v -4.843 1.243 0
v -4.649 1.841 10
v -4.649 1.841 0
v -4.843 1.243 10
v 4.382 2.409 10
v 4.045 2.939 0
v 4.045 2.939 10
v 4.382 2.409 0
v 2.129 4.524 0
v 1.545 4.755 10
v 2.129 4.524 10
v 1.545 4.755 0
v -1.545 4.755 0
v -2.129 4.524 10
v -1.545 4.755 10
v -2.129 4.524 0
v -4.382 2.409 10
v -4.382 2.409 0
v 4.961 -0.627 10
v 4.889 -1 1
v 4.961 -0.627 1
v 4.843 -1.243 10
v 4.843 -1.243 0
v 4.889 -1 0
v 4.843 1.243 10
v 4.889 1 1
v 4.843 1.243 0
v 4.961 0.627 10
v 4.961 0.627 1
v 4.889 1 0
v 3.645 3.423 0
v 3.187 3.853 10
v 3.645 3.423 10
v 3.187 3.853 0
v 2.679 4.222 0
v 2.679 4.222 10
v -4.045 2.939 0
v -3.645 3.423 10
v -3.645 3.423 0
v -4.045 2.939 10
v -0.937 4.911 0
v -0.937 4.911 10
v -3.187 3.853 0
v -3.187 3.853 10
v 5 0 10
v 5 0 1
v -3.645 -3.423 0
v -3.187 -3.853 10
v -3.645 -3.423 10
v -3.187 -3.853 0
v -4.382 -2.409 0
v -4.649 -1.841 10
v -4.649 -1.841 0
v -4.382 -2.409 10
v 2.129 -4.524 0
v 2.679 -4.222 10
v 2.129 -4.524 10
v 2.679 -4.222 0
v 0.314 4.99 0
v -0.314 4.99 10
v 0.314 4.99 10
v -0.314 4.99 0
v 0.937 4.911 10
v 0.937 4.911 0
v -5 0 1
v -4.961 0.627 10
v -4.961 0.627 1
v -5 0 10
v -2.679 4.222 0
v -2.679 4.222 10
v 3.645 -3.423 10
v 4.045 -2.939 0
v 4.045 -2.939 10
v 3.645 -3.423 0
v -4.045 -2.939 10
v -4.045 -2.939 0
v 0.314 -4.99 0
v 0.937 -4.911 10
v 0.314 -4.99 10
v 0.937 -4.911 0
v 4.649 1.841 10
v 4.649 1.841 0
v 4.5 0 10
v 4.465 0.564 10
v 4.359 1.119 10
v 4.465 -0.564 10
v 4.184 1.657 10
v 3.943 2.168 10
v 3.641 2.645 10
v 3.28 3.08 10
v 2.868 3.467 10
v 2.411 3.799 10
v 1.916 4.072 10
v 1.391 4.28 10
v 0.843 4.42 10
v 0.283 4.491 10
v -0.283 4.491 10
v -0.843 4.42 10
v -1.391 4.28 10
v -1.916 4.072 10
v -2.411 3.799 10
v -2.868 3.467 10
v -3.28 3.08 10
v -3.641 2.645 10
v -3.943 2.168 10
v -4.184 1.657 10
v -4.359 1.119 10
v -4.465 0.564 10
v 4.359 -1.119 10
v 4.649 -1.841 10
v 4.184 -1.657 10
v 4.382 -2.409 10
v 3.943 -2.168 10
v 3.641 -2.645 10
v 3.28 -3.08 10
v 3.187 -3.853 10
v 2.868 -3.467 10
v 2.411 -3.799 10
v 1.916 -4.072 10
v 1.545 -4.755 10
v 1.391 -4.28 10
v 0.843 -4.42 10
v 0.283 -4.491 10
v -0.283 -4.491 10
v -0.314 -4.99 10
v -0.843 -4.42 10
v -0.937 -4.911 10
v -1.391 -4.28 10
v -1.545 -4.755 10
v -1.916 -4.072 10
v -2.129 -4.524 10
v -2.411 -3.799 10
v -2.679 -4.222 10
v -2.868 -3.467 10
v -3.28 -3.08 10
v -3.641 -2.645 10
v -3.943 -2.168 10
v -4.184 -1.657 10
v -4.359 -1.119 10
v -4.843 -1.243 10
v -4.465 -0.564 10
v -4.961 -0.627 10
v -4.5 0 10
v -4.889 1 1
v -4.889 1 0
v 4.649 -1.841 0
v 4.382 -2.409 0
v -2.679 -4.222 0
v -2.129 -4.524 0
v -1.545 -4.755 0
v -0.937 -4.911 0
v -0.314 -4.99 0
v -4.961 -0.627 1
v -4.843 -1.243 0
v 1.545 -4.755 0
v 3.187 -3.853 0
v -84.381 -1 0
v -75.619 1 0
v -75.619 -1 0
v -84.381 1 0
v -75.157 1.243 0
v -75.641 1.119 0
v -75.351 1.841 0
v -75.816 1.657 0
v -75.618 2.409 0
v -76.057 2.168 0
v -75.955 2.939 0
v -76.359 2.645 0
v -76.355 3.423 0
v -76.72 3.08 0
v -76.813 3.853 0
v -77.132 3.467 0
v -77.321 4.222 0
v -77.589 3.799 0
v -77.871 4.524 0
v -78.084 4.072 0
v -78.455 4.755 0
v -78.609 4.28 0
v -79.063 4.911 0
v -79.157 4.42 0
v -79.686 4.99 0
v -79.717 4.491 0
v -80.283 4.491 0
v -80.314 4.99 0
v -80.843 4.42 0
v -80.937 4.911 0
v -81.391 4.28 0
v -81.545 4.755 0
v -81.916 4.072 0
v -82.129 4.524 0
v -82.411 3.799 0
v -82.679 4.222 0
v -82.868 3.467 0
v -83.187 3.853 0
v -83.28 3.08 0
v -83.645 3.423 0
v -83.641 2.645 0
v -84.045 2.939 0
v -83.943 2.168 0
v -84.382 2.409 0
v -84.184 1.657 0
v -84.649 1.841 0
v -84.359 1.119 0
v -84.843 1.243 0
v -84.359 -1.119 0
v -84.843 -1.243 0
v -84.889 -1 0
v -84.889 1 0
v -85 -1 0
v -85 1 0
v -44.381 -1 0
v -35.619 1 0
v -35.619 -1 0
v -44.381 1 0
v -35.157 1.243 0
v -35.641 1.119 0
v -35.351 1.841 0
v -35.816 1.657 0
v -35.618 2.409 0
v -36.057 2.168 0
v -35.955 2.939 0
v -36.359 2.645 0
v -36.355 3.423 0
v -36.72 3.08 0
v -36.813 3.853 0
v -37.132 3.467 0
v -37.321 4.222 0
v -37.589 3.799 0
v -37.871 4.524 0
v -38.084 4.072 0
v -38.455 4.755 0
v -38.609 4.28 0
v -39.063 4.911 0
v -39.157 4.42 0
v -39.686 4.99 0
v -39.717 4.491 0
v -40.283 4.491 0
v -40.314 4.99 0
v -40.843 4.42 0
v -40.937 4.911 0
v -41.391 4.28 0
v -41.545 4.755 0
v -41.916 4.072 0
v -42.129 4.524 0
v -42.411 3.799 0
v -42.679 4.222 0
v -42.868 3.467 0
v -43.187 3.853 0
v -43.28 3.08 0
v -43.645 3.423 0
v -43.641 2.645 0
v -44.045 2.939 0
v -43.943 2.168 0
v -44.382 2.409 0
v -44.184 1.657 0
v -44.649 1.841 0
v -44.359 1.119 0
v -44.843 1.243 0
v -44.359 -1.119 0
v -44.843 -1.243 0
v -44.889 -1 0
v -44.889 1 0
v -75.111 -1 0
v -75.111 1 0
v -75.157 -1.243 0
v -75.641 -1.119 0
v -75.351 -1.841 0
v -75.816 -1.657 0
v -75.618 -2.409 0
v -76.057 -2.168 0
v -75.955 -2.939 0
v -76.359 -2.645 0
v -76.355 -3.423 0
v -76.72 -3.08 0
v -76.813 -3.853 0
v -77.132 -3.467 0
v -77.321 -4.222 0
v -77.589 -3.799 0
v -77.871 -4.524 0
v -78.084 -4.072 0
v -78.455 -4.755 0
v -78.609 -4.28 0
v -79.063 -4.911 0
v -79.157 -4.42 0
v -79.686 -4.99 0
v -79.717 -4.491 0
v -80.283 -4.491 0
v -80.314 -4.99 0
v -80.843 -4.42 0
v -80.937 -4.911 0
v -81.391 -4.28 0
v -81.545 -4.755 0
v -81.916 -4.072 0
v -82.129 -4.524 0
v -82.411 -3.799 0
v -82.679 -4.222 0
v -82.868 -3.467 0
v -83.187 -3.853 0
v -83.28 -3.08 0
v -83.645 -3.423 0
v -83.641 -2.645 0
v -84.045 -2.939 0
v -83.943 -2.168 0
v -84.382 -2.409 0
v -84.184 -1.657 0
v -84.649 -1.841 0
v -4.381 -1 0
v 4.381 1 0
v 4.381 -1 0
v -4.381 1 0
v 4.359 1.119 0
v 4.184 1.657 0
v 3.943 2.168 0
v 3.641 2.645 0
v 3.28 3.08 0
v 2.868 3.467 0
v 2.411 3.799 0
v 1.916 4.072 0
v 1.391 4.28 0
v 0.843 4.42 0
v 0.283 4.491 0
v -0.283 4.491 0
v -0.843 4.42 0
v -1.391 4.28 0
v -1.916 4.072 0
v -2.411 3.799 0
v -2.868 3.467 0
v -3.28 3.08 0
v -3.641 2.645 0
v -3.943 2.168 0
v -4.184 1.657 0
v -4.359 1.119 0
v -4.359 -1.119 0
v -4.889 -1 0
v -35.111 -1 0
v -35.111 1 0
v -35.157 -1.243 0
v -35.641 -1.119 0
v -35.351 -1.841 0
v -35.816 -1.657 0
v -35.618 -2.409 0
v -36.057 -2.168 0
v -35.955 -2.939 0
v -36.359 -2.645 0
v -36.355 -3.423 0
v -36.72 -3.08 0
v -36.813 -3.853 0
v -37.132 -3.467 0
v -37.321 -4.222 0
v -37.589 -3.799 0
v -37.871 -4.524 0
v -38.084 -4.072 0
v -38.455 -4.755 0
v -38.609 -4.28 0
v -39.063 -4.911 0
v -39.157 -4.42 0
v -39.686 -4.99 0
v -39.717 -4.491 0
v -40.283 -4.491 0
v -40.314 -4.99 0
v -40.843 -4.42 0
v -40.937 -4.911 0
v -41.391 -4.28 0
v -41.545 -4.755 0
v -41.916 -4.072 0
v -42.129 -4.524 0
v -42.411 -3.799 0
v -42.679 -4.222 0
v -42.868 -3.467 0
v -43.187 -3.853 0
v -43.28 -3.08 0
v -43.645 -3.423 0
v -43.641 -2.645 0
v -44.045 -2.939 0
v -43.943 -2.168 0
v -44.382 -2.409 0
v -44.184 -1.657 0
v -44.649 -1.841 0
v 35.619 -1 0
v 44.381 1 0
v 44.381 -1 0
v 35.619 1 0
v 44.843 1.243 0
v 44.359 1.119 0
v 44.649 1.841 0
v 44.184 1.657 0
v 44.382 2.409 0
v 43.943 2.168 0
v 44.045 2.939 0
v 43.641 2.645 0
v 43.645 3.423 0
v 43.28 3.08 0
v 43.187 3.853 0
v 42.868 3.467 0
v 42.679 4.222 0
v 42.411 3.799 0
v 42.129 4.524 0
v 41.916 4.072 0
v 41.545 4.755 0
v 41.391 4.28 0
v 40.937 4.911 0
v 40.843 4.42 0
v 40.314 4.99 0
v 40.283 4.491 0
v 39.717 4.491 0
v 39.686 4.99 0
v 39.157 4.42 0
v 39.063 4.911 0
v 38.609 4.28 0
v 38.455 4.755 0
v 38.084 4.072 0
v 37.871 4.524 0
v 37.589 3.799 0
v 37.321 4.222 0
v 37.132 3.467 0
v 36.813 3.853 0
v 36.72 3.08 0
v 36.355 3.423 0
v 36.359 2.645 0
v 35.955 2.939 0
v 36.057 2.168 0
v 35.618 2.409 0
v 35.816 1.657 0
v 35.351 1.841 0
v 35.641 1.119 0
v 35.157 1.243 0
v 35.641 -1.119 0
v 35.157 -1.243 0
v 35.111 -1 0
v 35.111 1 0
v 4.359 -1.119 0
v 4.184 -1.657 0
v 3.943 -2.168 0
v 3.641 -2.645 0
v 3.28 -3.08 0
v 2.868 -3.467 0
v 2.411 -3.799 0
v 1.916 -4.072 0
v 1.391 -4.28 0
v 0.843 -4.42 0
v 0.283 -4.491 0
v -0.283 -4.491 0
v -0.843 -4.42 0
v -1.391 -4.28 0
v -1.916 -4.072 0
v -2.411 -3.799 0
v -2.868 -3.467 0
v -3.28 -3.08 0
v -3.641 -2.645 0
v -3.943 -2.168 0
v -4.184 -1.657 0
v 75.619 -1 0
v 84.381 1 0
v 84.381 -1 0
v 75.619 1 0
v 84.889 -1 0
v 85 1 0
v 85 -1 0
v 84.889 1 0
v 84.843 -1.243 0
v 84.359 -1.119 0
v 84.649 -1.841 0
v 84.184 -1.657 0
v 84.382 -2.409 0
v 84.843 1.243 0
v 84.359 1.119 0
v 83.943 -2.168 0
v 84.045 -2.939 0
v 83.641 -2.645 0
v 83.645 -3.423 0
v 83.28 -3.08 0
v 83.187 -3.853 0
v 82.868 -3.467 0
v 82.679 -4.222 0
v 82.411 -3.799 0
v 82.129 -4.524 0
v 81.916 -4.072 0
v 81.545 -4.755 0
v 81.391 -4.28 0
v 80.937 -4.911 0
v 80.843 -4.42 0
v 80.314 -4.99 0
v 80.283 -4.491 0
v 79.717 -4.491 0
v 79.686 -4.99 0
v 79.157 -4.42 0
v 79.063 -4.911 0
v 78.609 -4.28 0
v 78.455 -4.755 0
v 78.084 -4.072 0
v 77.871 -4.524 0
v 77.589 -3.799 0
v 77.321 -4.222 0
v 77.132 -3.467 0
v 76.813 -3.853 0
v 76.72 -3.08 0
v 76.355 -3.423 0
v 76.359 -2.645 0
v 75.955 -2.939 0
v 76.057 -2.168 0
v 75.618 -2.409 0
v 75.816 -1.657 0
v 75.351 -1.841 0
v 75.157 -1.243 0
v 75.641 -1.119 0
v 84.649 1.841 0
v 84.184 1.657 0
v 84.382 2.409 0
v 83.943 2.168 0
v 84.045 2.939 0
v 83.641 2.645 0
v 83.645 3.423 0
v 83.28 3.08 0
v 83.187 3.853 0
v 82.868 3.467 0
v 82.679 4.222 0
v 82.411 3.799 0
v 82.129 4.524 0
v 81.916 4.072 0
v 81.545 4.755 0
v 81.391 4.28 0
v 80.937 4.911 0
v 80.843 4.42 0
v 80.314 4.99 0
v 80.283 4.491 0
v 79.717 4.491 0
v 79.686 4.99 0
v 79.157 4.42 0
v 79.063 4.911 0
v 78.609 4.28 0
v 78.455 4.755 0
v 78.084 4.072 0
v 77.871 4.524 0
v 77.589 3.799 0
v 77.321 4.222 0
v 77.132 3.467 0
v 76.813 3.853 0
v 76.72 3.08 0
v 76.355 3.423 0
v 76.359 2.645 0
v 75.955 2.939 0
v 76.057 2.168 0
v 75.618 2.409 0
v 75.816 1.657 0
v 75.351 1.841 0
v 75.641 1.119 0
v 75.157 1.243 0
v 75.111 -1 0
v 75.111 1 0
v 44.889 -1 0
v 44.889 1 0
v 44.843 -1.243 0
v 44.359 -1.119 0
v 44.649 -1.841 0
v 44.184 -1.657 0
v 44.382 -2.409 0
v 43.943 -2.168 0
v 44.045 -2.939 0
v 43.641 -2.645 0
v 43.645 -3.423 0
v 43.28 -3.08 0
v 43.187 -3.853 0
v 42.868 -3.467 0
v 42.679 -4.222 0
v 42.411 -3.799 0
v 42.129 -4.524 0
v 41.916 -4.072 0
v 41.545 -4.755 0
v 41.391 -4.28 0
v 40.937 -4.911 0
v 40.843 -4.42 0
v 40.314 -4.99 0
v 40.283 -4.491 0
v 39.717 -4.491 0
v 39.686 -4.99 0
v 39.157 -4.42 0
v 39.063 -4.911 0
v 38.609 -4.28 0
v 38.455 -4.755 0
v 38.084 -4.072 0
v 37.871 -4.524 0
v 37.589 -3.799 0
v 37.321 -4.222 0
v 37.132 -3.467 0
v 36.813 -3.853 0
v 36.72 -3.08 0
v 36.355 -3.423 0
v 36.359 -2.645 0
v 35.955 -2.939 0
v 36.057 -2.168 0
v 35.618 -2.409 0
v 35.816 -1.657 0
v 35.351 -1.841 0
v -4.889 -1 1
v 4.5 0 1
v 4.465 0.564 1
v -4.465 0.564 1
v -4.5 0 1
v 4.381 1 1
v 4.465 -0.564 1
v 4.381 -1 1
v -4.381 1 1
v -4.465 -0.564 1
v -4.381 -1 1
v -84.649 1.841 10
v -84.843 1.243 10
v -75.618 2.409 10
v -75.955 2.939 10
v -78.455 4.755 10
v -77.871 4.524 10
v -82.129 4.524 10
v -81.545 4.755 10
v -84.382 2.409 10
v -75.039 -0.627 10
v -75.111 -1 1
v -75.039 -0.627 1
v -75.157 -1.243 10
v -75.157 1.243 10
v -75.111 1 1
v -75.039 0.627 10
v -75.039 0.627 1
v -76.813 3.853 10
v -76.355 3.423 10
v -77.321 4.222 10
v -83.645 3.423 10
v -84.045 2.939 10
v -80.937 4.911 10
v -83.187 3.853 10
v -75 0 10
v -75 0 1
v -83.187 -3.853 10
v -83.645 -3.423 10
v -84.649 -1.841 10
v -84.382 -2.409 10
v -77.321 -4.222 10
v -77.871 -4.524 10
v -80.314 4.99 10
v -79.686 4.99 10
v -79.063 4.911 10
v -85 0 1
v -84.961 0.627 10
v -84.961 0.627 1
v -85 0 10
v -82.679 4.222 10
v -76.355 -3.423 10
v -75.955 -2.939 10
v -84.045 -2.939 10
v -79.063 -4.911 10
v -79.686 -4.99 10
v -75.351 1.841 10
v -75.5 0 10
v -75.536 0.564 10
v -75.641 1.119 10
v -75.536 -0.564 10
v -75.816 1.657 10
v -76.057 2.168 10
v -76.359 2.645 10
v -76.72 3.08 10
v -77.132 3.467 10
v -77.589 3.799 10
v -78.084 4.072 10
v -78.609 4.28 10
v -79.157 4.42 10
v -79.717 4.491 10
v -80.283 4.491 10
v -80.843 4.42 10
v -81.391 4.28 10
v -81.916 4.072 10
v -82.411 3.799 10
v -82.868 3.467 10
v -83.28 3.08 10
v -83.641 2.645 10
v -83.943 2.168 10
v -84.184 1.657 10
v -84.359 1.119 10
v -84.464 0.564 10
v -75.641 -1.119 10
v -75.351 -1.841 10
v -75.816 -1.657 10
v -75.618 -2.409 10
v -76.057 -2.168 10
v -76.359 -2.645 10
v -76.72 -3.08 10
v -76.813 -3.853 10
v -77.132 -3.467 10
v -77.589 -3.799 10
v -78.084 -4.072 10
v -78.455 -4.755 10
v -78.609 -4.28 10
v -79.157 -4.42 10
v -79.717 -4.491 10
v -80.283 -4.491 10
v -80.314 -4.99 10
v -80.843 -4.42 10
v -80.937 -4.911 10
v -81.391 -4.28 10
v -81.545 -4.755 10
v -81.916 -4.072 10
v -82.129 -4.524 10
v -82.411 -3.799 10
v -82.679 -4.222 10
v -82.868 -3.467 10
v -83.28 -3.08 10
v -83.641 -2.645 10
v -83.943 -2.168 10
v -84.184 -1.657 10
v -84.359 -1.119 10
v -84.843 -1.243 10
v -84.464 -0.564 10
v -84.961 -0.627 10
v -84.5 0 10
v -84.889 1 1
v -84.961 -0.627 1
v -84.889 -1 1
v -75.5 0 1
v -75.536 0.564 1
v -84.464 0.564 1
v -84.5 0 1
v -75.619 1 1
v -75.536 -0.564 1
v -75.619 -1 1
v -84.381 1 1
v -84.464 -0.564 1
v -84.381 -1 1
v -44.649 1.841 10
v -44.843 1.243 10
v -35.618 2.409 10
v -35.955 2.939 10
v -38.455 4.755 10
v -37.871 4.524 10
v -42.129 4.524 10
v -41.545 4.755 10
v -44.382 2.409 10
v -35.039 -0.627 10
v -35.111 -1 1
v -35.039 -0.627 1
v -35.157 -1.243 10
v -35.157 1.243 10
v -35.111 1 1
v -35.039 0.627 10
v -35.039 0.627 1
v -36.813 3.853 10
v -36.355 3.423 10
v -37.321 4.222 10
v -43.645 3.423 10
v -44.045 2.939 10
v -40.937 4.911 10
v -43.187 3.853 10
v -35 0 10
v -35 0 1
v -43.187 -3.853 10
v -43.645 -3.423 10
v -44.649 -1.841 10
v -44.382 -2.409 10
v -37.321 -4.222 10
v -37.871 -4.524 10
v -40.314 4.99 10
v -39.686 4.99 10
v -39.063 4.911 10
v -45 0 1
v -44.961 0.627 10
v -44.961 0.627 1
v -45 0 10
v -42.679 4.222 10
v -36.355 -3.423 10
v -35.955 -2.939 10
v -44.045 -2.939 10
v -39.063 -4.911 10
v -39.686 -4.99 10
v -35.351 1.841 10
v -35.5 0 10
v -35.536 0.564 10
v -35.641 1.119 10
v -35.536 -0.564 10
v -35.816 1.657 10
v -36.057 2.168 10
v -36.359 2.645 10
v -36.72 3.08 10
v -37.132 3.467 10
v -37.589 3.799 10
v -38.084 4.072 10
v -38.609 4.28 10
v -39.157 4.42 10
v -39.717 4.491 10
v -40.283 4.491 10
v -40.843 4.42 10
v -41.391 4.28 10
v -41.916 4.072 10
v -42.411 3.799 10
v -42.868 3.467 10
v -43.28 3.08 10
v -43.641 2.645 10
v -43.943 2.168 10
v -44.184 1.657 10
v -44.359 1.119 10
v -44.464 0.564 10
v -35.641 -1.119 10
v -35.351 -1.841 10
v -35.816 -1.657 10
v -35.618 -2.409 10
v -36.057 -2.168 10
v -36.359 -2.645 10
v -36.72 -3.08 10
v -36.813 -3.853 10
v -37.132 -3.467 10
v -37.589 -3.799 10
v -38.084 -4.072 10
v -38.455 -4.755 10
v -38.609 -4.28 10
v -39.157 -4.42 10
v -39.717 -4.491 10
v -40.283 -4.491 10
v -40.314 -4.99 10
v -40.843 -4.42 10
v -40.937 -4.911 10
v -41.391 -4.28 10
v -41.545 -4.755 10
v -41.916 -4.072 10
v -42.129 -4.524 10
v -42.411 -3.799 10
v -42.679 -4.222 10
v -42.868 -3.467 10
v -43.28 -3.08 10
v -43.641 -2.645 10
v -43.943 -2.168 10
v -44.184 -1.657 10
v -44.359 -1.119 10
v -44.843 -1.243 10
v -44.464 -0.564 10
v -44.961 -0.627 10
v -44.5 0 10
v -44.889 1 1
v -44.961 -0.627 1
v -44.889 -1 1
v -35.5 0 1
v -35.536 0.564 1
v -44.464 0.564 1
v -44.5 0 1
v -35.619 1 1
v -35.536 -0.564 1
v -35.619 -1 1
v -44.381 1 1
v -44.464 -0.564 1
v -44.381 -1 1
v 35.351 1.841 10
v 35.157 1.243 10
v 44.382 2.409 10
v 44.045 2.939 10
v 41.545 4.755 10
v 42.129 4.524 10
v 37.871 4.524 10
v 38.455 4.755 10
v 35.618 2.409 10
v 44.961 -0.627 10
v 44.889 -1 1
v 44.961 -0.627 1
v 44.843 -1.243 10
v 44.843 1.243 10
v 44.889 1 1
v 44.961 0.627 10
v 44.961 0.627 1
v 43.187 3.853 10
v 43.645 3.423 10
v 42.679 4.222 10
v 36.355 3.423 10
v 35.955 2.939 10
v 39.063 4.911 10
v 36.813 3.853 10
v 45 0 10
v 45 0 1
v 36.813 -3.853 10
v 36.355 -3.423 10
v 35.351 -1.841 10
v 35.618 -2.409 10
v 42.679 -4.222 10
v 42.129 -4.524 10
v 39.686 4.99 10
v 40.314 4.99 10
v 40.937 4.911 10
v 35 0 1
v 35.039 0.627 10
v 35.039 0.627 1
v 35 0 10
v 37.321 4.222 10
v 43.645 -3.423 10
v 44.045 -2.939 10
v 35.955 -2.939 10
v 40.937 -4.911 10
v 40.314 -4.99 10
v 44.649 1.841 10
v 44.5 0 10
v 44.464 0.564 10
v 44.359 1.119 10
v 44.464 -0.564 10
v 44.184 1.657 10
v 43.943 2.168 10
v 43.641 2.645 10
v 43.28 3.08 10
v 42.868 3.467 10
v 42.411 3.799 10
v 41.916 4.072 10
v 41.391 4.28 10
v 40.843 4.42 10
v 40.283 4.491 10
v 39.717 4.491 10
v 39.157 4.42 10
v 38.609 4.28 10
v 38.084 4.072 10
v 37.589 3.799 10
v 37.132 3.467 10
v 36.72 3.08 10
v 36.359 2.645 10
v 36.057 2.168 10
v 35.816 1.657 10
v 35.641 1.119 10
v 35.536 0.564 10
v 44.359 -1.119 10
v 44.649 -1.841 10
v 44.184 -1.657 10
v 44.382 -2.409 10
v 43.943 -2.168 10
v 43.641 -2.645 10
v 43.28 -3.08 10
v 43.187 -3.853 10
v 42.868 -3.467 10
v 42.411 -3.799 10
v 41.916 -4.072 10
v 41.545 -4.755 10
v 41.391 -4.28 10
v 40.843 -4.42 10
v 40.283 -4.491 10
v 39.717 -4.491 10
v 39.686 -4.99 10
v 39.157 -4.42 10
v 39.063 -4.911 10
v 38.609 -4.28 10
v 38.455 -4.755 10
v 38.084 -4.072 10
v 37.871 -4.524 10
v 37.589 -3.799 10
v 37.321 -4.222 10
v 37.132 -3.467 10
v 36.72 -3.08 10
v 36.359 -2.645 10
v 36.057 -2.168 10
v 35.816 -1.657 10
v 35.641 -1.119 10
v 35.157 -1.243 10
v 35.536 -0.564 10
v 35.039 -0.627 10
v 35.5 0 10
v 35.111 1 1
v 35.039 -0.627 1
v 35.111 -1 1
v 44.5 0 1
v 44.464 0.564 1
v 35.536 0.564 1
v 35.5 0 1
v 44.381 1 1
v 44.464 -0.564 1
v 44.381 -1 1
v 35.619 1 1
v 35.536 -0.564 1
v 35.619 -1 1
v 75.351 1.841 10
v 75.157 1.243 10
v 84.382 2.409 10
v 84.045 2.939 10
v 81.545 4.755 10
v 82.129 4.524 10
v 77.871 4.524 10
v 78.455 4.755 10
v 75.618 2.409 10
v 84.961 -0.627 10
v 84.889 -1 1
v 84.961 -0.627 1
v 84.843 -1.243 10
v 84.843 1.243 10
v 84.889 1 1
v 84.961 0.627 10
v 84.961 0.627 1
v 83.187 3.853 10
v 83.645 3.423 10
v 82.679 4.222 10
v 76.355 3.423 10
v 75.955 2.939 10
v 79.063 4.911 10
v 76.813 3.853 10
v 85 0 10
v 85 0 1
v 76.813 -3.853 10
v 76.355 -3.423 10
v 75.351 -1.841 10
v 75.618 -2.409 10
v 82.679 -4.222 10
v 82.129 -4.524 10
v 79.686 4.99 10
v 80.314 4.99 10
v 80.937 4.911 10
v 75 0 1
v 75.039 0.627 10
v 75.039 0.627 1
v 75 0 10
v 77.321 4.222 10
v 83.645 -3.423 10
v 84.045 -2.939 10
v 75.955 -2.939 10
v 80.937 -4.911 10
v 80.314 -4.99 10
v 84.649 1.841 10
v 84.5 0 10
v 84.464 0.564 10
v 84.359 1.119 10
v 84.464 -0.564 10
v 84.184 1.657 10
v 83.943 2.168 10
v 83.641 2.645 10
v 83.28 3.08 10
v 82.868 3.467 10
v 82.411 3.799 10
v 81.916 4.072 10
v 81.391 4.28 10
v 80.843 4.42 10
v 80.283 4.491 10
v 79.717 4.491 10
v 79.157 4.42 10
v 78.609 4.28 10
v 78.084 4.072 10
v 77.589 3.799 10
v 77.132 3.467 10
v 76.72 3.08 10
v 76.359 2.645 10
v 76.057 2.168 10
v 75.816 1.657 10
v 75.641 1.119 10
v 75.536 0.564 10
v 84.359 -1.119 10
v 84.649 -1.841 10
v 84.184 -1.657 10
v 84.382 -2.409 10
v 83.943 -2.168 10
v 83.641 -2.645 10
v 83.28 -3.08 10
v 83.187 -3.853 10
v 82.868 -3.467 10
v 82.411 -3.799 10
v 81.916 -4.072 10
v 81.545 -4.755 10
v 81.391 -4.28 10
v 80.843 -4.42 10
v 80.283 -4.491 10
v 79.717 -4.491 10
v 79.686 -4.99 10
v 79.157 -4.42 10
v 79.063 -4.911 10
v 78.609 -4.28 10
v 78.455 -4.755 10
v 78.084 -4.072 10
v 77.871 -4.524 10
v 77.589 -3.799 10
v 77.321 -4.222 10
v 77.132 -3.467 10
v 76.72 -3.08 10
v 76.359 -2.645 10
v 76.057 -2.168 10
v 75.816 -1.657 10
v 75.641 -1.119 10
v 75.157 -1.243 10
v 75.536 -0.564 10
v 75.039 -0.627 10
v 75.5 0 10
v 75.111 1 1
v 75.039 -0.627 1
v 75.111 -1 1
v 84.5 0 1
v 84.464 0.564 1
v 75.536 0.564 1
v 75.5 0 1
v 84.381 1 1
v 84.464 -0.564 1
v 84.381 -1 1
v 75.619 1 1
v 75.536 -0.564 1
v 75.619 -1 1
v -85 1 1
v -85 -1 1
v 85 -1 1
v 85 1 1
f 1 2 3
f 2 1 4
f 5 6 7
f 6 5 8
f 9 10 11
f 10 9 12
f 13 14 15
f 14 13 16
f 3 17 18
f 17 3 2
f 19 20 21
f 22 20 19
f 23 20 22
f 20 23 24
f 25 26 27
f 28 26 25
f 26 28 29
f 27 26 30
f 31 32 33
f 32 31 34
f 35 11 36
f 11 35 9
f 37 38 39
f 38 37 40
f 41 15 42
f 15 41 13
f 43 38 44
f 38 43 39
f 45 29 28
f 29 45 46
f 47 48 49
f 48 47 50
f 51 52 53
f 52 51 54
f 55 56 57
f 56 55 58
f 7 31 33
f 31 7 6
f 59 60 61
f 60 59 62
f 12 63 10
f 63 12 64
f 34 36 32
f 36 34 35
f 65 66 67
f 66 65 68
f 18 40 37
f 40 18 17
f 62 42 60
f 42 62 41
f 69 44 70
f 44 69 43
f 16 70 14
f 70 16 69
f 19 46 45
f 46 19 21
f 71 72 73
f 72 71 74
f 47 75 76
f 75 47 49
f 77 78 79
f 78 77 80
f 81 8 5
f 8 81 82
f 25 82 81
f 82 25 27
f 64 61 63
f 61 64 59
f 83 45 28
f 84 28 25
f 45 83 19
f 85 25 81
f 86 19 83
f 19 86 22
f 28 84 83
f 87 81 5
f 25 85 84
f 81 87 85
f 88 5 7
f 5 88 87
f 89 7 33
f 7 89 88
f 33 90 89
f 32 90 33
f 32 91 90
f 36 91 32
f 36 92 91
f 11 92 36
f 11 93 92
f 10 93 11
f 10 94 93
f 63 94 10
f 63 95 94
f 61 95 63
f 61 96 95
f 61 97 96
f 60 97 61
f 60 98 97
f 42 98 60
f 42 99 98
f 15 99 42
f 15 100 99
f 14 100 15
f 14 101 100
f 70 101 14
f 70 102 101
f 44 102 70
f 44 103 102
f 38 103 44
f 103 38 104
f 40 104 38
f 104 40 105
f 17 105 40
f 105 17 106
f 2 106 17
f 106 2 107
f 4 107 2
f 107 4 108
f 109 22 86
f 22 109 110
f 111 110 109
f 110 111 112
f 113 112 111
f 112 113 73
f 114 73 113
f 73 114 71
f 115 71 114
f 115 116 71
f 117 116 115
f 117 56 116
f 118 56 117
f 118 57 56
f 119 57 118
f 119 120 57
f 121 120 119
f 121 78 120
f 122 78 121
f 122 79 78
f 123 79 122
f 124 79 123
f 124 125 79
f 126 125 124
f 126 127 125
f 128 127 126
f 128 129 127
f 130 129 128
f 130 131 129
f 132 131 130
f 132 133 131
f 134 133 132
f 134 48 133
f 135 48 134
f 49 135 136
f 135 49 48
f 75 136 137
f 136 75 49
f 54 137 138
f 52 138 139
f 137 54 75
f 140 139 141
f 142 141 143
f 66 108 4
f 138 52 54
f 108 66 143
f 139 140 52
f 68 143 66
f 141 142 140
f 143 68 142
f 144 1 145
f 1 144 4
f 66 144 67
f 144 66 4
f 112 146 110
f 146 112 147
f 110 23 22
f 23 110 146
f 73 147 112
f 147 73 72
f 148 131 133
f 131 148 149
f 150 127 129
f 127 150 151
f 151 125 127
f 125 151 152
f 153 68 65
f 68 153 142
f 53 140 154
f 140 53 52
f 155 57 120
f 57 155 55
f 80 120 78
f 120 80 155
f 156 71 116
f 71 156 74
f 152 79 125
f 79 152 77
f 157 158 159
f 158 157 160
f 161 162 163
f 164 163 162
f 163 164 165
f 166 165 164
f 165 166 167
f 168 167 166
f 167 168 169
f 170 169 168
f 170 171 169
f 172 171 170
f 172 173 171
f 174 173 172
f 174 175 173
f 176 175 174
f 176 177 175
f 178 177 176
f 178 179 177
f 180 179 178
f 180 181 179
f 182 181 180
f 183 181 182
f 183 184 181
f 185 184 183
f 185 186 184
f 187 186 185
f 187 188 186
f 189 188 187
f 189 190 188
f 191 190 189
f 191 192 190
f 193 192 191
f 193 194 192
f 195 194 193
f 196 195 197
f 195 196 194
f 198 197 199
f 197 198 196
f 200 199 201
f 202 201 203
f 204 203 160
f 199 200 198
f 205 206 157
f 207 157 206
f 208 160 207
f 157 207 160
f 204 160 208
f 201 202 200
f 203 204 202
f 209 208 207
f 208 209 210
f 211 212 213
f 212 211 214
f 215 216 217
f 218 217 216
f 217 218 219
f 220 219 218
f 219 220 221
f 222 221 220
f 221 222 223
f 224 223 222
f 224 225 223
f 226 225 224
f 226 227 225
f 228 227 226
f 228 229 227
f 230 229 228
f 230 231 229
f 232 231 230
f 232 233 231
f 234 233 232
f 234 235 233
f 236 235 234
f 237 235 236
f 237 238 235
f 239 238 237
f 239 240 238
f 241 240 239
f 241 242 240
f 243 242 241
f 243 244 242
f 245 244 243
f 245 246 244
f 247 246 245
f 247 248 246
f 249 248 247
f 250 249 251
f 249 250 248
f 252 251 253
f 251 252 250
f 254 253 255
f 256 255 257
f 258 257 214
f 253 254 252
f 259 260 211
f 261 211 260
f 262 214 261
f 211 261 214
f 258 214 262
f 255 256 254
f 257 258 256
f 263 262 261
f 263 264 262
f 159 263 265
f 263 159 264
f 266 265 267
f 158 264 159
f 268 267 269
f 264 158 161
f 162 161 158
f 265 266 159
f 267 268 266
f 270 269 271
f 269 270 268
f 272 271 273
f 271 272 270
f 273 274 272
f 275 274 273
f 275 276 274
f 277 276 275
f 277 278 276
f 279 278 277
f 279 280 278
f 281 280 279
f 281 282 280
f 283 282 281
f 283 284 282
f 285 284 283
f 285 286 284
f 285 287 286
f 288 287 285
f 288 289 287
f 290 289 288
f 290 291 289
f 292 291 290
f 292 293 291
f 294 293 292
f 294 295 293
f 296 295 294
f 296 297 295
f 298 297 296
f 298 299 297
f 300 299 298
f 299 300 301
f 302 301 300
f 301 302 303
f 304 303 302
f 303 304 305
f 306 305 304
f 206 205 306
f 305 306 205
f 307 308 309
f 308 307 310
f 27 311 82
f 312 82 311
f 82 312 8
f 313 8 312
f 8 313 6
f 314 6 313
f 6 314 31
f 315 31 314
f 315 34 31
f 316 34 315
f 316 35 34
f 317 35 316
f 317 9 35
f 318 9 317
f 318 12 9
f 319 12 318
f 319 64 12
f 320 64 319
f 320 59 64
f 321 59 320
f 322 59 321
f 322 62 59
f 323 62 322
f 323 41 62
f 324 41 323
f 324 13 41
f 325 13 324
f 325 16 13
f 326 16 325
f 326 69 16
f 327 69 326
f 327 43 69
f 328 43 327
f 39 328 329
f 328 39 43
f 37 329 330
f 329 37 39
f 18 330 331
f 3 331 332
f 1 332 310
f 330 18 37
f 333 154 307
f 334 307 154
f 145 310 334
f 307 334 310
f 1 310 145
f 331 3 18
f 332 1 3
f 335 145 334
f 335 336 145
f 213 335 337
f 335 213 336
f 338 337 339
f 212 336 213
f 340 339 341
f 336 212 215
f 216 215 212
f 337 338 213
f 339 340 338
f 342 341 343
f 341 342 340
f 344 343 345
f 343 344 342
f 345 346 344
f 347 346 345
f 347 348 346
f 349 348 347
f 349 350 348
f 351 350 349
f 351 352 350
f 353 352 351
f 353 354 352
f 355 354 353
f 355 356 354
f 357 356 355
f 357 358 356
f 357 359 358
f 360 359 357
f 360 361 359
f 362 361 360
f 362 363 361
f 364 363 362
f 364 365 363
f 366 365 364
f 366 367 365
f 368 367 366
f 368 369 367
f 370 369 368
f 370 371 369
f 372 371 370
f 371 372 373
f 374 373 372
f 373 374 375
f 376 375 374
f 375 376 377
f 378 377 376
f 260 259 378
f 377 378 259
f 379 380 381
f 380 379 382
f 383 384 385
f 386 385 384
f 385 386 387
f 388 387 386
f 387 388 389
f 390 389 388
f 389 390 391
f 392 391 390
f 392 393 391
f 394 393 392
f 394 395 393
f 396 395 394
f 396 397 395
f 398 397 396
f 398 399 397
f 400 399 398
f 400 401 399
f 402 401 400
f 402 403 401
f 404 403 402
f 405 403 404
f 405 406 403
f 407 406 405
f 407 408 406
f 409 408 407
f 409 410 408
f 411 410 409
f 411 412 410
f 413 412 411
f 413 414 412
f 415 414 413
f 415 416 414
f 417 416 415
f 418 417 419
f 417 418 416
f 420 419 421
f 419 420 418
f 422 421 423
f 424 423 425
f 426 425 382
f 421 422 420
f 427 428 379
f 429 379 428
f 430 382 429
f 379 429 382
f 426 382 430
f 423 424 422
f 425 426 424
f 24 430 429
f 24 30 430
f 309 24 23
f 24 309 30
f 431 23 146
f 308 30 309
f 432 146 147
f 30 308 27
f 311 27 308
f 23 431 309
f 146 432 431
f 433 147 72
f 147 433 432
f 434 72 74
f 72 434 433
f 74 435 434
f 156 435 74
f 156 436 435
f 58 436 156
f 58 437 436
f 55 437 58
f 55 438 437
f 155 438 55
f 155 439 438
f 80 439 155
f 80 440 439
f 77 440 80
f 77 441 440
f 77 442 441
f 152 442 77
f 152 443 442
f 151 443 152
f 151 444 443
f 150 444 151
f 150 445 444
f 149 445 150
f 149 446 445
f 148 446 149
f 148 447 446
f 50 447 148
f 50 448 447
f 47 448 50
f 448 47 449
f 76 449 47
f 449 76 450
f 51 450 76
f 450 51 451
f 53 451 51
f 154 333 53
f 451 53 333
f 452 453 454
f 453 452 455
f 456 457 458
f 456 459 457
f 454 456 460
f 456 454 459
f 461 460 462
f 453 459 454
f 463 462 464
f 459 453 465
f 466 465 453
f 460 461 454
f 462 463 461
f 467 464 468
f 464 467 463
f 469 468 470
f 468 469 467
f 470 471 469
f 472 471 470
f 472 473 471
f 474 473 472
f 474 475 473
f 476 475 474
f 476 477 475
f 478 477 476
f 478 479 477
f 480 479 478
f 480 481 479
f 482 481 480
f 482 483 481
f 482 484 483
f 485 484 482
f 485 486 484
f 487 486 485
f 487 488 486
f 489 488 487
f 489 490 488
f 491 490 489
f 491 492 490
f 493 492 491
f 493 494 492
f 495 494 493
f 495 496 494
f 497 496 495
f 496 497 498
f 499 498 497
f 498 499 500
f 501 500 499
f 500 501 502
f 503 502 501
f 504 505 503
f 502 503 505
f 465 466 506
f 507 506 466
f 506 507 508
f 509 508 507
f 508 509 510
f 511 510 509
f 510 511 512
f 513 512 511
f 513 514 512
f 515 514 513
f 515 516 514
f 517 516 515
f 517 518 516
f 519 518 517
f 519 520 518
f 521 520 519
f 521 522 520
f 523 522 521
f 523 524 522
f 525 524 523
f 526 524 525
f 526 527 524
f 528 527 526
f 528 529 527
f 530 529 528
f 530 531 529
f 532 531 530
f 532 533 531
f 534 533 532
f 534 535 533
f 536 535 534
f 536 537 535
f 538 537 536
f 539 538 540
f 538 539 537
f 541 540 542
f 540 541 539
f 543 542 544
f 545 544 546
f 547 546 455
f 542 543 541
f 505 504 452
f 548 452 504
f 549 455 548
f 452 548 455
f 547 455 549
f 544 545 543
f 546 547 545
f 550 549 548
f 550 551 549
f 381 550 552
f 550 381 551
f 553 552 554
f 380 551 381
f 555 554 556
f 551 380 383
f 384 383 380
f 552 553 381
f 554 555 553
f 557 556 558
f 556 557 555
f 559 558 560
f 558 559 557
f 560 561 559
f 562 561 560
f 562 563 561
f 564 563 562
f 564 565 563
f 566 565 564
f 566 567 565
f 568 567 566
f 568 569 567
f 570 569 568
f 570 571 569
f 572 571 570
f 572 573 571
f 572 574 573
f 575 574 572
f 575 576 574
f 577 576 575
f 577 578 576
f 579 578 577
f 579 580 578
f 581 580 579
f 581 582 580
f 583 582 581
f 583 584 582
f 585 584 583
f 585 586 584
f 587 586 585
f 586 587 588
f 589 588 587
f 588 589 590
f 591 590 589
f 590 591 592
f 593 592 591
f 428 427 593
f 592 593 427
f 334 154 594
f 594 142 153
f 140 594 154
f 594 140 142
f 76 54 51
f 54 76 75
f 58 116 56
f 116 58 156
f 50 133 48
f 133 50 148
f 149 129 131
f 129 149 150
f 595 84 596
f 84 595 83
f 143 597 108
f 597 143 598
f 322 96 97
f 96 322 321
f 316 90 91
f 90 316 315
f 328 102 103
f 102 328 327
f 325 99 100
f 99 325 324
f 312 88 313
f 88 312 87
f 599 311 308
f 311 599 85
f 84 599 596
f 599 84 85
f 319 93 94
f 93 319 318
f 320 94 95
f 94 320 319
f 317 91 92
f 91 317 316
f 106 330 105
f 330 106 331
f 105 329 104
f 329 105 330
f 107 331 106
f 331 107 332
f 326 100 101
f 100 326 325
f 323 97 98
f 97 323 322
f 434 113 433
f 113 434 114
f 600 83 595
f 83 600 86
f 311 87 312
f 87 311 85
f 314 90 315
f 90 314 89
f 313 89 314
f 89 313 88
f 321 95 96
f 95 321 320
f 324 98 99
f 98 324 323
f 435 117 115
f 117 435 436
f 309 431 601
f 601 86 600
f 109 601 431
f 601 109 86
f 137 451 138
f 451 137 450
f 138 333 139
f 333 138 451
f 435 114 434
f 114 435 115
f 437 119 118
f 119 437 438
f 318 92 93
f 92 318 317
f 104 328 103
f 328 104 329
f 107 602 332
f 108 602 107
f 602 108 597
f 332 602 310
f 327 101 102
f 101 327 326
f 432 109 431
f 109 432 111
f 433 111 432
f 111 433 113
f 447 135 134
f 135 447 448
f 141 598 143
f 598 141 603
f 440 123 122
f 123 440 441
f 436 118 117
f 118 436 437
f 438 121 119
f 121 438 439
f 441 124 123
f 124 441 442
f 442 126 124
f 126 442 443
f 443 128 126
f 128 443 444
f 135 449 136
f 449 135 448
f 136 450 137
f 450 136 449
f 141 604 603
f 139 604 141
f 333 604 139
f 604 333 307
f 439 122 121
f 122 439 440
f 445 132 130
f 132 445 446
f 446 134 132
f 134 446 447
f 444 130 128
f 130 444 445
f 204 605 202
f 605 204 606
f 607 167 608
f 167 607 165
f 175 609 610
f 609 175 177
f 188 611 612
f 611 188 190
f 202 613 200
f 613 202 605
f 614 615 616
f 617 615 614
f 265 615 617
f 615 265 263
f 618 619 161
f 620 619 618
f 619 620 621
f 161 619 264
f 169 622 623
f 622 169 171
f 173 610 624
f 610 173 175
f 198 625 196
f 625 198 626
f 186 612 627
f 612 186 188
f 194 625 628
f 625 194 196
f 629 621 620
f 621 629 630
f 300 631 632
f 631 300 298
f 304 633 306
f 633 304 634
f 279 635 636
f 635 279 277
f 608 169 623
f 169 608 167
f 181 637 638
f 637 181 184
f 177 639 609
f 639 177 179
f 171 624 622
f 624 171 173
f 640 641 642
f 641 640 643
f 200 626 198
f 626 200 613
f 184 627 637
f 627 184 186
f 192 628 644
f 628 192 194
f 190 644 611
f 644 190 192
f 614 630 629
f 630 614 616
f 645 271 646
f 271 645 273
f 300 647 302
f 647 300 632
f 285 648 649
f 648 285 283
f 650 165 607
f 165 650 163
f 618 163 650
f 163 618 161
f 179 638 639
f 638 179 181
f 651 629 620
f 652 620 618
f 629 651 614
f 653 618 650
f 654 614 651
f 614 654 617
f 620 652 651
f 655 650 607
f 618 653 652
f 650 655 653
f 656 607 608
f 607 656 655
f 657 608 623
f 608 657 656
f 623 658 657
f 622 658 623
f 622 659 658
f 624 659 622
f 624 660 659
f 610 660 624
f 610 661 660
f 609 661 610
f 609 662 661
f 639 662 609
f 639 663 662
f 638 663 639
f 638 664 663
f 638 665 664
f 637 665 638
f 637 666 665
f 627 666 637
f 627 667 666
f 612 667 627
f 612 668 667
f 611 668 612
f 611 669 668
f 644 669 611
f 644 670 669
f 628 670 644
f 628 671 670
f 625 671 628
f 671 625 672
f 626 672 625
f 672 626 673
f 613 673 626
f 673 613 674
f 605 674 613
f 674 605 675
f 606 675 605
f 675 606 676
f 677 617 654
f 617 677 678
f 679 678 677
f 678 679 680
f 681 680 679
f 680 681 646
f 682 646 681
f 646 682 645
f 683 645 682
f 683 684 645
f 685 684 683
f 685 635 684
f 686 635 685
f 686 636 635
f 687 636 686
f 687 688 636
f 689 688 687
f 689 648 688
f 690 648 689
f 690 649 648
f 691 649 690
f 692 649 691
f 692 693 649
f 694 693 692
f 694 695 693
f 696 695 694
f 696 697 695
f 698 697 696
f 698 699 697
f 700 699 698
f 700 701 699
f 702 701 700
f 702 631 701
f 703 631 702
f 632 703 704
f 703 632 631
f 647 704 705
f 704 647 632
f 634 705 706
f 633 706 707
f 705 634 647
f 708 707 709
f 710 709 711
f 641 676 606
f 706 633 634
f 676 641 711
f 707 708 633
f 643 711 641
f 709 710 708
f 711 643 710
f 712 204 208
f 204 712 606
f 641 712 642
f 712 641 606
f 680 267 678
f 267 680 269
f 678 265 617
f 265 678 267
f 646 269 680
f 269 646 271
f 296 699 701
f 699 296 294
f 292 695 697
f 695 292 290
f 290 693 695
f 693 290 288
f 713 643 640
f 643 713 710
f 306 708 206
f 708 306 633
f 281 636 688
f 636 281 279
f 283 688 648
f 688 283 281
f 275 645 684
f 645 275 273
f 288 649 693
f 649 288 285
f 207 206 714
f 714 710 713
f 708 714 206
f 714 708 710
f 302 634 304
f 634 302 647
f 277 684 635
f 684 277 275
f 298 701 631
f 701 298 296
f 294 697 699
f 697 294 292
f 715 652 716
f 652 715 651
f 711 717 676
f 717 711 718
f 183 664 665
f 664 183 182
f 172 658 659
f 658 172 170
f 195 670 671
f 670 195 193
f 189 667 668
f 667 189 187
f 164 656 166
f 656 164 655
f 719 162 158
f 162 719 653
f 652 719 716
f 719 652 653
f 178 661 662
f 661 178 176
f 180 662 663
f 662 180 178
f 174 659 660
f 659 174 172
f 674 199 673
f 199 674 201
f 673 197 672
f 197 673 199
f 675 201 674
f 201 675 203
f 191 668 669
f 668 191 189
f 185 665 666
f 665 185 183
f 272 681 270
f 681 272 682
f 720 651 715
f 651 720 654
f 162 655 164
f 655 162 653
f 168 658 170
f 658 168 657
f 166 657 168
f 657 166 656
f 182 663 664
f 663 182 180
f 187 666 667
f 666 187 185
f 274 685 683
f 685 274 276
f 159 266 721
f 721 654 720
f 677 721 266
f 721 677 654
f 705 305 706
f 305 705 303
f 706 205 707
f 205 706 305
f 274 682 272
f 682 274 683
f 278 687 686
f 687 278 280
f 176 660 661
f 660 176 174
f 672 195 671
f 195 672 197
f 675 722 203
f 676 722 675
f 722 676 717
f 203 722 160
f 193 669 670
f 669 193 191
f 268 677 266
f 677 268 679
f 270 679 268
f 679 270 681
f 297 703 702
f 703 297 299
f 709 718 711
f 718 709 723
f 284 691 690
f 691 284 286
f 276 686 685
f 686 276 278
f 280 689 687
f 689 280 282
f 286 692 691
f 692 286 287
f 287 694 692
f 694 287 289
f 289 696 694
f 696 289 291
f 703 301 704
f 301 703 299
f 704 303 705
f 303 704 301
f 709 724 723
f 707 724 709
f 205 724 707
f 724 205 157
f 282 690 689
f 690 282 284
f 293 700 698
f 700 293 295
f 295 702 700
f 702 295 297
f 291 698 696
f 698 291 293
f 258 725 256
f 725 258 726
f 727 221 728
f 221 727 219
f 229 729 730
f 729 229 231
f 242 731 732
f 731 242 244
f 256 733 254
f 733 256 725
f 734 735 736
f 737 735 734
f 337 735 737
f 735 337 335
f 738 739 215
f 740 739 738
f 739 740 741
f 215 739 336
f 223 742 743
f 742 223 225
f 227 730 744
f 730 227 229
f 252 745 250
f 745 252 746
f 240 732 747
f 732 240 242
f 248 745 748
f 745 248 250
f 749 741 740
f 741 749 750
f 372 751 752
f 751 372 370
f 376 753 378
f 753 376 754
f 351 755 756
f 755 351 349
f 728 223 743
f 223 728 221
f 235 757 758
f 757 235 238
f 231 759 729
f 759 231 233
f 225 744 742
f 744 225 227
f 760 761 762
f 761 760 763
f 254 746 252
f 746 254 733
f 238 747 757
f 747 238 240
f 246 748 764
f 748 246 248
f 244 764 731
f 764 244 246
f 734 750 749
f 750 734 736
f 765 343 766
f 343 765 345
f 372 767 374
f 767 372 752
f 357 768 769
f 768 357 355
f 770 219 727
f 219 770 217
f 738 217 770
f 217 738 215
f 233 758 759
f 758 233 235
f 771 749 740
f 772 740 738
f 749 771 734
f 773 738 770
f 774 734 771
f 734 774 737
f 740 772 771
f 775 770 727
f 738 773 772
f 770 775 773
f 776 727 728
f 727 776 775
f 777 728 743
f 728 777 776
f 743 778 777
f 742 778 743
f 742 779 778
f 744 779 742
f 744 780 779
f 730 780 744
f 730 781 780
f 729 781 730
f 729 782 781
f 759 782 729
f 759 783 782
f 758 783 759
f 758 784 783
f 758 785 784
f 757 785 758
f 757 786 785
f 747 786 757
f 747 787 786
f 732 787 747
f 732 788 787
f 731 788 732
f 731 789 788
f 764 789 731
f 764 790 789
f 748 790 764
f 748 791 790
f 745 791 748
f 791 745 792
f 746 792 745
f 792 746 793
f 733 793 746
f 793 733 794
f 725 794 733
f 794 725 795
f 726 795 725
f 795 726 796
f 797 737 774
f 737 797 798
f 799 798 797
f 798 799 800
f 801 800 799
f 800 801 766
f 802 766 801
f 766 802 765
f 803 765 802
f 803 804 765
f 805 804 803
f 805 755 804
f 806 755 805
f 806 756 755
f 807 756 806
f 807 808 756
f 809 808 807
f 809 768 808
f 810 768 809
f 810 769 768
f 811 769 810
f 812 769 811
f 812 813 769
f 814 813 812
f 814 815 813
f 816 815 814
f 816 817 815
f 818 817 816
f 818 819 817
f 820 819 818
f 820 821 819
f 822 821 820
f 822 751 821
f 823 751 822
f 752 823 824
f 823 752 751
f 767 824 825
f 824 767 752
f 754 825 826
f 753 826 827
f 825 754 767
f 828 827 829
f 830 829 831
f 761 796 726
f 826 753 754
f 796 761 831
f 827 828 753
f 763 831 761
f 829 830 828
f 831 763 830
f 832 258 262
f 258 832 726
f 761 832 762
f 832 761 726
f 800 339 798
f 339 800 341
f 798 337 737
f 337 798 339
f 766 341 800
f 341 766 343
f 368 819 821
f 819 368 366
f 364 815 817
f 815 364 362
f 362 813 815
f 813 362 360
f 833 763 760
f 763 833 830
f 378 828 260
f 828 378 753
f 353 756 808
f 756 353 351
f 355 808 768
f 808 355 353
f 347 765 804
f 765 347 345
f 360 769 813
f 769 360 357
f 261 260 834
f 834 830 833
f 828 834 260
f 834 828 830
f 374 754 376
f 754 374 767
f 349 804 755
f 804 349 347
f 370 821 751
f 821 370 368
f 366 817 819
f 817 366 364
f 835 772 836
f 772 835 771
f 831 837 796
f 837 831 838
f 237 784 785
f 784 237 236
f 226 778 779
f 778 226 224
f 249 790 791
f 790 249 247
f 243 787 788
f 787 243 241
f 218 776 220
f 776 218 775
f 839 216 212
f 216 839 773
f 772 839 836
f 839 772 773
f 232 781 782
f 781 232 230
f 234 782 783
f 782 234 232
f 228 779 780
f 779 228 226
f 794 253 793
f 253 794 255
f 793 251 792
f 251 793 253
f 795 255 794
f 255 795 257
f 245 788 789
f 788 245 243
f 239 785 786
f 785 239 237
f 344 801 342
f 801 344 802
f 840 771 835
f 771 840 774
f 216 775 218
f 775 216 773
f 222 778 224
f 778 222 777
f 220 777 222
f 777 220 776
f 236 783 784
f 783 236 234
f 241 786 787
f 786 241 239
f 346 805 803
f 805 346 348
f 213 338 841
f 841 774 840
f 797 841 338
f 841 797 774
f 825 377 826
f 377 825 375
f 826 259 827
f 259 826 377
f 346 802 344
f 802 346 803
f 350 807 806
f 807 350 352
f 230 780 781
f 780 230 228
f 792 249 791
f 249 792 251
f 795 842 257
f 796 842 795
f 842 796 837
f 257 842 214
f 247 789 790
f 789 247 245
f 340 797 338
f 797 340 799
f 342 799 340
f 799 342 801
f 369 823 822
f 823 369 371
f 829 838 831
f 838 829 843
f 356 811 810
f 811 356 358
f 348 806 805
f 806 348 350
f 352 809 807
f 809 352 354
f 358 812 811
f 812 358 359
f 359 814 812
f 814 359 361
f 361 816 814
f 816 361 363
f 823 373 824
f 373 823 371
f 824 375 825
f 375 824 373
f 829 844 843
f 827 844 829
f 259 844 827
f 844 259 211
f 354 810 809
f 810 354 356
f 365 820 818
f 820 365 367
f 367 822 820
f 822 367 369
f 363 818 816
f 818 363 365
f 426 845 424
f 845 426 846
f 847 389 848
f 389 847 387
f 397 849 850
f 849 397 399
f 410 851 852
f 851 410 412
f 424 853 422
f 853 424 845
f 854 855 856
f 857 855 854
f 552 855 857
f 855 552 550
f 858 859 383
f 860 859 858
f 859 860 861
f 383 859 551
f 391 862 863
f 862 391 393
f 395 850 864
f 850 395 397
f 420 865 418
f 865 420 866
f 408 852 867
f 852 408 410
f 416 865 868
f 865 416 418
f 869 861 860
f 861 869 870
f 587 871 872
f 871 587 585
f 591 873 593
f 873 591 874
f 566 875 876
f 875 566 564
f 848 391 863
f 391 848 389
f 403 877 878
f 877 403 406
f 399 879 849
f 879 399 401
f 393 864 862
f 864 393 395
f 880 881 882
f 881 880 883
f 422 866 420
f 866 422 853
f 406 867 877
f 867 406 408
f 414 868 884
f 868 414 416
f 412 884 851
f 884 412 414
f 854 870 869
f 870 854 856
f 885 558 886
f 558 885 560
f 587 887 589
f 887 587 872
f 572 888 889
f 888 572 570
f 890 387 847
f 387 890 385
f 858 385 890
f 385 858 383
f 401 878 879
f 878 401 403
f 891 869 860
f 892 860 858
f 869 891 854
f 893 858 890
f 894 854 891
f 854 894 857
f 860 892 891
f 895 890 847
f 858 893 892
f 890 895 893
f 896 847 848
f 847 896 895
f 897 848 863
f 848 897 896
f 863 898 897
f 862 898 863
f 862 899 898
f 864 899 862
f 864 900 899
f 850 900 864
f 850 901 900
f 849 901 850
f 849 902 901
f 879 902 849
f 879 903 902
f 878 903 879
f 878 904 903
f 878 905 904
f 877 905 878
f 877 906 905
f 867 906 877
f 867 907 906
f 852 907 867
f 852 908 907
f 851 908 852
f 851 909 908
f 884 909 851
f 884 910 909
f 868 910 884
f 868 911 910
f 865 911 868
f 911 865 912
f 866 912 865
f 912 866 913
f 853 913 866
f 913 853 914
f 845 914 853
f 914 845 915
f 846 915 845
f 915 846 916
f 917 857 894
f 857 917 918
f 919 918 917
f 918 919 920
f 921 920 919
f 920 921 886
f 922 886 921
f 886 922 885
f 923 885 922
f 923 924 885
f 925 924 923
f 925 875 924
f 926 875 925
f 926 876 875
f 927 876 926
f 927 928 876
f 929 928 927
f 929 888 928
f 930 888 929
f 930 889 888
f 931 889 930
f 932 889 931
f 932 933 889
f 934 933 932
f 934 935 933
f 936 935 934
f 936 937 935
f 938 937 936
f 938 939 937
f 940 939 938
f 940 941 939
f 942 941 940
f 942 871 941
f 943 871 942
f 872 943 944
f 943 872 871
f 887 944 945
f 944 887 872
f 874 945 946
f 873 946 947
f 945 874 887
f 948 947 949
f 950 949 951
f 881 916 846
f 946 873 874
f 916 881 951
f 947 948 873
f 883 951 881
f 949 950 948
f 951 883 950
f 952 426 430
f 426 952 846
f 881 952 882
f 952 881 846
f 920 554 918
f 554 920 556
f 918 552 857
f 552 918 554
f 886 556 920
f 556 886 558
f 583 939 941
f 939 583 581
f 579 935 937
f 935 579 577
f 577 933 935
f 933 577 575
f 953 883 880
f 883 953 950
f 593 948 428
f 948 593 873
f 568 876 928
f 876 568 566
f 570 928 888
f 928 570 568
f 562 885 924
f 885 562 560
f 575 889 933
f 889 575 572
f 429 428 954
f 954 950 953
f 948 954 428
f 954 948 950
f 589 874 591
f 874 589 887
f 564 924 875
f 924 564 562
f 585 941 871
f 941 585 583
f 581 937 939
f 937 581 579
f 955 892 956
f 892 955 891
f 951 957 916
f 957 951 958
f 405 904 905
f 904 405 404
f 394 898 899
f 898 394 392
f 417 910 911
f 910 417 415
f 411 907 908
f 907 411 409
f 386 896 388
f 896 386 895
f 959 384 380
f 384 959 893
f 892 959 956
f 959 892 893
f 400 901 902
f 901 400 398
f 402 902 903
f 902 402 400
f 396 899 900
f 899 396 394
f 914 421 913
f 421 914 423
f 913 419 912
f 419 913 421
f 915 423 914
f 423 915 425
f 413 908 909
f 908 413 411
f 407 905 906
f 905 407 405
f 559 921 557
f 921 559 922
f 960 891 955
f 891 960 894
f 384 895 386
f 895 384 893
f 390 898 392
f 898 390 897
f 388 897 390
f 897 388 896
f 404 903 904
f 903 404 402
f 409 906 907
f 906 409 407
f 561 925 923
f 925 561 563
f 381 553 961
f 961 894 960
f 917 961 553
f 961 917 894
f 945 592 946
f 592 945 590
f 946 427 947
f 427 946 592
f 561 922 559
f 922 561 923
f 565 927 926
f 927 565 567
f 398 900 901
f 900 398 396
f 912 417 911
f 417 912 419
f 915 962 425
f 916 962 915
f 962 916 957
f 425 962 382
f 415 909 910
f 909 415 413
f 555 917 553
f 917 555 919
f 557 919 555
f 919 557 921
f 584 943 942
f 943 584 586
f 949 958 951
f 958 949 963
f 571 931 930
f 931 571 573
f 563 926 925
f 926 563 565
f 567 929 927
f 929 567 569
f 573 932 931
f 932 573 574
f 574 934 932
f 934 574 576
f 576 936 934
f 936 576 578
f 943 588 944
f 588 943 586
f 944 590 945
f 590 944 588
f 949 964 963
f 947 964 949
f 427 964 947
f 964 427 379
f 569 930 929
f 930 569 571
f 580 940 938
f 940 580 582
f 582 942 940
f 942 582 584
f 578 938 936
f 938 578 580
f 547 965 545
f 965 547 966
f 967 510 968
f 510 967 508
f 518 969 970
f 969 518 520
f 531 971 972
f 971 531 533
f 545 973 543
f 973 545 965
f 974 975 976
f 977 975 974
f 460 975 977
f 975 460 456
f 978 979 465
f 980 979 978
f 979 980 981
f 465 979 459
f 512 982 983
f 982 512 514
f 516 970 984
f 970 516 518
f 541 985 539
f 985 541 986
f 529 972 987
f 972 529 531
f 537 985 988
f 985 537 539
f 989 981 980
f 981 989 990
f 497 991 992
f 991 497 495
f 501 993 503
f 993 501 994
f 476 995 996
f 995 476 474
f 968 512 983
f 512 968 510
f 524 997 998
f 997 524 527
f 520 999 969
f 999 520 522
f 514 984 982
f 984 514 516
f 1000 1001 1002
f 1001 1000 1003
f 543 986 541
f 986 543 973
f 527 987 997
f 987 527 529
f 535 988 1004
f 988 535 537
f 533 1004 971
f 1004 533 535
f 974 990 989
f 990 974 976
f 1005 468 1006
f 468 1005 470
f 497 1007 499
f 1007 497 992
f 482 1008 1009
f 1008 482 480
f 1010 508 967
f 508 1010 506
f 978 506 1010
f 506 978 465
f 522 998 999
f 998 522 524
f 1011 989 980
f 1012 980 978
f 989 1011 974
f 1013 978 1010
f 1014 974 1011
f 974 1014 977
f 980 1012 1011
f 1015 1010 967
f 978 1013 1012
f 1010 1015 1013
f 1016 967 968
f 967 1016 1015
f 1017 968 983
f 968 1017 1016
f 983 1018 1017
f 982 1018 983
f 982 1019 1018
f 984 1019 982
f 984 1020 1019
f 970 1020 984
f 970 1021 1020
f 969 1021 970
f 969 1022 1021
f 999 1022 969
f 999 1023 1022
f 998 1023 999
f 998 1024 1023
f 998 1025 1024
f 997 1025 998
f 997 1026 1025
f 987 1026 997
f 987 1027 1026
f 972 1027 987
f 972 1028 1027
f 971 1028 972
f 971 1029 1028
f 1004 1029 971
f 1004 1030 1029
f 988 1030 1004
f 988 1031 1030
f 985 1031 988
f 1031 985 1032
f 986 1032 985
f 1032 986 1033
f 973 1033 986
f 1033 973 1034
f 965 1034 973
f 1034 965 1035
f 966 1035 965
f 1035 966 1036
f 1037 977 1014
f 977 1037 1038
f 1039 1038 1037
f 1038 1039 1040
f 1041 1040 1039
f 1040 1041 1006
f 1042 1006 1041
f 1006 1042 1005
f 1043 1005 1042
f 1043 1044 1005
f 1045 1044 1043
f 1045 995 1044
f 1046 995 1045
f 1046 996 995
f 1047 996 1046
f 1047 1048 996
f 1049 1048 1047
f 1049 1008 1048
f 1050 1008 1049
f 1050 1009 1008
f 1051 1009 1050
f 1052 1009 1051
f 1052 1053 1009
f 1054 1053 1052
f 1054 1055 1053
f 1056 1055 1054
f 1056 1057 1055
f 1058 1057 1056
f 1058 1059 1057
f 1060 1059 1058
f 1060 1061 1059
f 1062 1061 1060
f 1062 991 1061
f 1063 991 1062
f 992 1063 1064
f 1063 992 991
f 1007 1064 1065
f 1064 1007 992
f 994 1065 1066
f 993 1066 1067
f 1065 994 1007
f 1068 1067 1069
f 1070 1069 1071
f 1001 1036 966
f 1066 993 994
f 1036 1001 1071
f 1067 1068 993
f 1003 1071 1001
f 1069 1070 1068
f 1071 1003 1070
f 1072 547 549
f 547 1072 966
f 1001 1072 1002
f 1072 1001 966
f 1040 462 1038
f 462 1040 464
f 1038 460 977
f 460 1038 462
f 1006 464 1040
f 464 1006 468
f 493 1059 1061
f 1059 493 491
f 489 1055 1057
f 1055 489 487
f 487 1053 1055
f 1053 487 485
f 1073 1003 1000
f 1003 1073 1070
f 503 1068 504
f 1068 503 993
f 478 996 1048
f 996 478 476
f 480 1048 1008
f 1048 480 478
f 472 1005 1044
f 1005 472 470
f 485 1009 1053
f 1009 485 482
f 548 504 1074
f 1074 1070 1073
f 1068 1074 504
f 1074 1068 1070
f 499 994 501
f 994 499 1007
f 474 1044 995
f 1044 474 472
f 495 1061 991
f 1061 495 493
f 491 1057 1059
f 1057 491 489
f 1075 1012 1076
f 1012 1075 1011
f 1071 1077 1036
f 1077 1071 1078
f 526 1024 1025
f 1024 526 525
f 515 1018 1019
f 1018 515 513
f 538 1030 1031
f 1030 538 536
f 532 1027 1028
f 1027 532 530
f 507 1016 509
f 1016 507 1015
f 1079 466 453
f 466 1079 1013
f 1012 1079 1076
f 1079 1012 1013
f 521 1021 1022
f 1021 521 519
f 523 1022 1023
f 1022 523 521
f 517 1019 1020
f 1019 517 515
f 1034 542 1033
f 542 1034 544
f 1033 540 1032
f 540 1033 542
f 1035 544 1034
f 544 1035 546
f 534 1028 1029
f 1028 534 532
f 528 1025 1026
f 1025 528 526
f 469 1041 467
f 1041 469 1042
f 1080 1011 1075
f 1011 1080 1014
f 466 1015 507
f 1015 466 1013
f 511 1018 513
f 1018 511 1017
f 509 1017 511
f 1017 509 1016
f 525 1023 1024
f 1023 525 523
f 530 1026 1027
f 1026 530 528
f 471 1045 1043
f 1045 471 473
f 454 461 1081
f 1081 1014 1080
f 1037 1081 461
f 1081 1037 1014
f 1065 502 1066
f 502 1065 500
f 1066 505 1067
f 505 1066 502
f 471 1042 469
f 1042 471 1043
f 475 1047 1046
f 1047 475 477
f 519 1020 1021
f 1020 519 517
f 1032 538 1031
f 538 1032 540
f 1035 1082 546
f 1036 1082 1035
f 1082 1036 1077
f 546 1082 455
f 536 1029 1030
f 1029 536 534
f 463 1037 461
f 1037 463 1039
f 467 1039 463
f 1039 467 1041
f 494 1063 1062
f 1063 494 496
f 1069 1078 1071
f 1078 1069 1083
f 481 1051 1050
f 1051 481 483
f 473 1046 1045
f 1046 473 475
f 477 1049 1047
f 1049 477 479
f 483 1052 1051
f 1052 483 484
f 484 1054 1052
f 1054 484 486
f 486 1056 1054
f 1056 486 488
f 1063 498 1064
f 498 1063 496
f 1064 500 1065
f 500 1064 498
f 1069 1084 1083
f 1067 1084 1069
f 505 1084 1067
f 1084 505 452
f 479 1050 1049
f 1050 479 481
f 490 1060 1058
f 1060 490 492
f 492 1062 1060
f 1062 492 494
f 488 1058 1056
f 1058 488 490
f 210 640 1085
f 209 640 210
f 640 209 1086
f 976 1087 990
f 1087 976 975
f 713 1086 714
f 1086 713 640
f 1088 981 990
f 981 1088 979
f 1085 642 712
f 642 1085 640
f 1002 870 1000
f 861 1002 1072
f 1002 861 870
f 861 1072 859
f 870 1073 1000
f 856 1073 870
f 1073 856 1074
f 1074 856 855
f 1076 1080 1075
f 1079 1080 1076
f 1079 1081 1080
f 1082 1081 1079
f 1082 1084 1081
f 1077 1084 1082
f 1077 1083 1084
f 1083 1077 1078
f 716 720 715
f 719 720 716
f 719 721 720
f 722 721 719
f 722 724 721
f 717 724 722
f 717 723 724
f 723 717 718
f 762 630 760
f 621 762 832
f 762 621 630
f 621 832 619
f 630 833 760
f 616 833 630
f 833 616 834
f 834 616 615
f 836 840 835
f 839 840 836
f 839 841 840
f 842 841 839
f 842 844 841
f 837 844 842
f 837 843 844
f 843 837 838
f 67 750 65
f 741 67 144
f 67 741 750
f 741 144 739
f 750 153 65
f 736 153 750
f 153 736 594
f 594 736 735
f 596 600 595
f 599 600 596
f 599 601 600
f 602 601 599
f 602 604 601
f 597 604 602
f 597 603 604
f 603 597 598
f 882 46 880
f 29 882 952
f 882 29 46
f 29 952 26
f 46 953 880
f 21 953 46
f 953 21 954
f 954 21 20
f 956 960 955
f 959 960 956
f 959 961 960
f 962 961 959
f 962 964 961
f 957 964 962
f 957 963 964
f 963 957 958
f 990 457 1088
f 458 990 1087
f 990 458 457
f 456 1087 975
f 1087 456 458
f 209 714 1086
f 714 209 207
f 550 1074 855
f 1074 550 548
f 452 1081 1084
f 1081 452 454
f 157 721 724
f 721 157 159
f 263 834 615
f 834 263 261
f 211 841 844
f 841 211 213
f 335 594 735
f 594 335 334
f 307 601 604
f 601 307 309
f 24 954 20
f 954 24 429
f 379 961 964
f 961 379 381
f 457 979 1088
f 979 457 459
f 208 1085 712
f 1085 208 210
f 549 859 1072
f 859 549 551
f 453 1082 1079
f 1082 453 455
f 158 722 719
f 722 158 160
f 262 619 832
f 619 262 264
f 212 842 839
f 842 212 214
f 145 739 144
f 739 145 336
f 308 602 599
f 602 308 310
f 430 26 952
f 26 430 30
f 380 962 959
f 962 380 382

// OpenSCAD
module tube() {
    difference() {
        cylinder(d=10,h=10,$fn=50);
        cylinder(d=9,h=10,$fn=50);
    }
}

translate([-80,0,0]) tube();
translate([-40,0,0]) tube();
tube();
translate([40,0,0]) tube();
translate([80,0,0]) tube();
translate([0,0,1/2]) cube([170,2,1],center=true);
